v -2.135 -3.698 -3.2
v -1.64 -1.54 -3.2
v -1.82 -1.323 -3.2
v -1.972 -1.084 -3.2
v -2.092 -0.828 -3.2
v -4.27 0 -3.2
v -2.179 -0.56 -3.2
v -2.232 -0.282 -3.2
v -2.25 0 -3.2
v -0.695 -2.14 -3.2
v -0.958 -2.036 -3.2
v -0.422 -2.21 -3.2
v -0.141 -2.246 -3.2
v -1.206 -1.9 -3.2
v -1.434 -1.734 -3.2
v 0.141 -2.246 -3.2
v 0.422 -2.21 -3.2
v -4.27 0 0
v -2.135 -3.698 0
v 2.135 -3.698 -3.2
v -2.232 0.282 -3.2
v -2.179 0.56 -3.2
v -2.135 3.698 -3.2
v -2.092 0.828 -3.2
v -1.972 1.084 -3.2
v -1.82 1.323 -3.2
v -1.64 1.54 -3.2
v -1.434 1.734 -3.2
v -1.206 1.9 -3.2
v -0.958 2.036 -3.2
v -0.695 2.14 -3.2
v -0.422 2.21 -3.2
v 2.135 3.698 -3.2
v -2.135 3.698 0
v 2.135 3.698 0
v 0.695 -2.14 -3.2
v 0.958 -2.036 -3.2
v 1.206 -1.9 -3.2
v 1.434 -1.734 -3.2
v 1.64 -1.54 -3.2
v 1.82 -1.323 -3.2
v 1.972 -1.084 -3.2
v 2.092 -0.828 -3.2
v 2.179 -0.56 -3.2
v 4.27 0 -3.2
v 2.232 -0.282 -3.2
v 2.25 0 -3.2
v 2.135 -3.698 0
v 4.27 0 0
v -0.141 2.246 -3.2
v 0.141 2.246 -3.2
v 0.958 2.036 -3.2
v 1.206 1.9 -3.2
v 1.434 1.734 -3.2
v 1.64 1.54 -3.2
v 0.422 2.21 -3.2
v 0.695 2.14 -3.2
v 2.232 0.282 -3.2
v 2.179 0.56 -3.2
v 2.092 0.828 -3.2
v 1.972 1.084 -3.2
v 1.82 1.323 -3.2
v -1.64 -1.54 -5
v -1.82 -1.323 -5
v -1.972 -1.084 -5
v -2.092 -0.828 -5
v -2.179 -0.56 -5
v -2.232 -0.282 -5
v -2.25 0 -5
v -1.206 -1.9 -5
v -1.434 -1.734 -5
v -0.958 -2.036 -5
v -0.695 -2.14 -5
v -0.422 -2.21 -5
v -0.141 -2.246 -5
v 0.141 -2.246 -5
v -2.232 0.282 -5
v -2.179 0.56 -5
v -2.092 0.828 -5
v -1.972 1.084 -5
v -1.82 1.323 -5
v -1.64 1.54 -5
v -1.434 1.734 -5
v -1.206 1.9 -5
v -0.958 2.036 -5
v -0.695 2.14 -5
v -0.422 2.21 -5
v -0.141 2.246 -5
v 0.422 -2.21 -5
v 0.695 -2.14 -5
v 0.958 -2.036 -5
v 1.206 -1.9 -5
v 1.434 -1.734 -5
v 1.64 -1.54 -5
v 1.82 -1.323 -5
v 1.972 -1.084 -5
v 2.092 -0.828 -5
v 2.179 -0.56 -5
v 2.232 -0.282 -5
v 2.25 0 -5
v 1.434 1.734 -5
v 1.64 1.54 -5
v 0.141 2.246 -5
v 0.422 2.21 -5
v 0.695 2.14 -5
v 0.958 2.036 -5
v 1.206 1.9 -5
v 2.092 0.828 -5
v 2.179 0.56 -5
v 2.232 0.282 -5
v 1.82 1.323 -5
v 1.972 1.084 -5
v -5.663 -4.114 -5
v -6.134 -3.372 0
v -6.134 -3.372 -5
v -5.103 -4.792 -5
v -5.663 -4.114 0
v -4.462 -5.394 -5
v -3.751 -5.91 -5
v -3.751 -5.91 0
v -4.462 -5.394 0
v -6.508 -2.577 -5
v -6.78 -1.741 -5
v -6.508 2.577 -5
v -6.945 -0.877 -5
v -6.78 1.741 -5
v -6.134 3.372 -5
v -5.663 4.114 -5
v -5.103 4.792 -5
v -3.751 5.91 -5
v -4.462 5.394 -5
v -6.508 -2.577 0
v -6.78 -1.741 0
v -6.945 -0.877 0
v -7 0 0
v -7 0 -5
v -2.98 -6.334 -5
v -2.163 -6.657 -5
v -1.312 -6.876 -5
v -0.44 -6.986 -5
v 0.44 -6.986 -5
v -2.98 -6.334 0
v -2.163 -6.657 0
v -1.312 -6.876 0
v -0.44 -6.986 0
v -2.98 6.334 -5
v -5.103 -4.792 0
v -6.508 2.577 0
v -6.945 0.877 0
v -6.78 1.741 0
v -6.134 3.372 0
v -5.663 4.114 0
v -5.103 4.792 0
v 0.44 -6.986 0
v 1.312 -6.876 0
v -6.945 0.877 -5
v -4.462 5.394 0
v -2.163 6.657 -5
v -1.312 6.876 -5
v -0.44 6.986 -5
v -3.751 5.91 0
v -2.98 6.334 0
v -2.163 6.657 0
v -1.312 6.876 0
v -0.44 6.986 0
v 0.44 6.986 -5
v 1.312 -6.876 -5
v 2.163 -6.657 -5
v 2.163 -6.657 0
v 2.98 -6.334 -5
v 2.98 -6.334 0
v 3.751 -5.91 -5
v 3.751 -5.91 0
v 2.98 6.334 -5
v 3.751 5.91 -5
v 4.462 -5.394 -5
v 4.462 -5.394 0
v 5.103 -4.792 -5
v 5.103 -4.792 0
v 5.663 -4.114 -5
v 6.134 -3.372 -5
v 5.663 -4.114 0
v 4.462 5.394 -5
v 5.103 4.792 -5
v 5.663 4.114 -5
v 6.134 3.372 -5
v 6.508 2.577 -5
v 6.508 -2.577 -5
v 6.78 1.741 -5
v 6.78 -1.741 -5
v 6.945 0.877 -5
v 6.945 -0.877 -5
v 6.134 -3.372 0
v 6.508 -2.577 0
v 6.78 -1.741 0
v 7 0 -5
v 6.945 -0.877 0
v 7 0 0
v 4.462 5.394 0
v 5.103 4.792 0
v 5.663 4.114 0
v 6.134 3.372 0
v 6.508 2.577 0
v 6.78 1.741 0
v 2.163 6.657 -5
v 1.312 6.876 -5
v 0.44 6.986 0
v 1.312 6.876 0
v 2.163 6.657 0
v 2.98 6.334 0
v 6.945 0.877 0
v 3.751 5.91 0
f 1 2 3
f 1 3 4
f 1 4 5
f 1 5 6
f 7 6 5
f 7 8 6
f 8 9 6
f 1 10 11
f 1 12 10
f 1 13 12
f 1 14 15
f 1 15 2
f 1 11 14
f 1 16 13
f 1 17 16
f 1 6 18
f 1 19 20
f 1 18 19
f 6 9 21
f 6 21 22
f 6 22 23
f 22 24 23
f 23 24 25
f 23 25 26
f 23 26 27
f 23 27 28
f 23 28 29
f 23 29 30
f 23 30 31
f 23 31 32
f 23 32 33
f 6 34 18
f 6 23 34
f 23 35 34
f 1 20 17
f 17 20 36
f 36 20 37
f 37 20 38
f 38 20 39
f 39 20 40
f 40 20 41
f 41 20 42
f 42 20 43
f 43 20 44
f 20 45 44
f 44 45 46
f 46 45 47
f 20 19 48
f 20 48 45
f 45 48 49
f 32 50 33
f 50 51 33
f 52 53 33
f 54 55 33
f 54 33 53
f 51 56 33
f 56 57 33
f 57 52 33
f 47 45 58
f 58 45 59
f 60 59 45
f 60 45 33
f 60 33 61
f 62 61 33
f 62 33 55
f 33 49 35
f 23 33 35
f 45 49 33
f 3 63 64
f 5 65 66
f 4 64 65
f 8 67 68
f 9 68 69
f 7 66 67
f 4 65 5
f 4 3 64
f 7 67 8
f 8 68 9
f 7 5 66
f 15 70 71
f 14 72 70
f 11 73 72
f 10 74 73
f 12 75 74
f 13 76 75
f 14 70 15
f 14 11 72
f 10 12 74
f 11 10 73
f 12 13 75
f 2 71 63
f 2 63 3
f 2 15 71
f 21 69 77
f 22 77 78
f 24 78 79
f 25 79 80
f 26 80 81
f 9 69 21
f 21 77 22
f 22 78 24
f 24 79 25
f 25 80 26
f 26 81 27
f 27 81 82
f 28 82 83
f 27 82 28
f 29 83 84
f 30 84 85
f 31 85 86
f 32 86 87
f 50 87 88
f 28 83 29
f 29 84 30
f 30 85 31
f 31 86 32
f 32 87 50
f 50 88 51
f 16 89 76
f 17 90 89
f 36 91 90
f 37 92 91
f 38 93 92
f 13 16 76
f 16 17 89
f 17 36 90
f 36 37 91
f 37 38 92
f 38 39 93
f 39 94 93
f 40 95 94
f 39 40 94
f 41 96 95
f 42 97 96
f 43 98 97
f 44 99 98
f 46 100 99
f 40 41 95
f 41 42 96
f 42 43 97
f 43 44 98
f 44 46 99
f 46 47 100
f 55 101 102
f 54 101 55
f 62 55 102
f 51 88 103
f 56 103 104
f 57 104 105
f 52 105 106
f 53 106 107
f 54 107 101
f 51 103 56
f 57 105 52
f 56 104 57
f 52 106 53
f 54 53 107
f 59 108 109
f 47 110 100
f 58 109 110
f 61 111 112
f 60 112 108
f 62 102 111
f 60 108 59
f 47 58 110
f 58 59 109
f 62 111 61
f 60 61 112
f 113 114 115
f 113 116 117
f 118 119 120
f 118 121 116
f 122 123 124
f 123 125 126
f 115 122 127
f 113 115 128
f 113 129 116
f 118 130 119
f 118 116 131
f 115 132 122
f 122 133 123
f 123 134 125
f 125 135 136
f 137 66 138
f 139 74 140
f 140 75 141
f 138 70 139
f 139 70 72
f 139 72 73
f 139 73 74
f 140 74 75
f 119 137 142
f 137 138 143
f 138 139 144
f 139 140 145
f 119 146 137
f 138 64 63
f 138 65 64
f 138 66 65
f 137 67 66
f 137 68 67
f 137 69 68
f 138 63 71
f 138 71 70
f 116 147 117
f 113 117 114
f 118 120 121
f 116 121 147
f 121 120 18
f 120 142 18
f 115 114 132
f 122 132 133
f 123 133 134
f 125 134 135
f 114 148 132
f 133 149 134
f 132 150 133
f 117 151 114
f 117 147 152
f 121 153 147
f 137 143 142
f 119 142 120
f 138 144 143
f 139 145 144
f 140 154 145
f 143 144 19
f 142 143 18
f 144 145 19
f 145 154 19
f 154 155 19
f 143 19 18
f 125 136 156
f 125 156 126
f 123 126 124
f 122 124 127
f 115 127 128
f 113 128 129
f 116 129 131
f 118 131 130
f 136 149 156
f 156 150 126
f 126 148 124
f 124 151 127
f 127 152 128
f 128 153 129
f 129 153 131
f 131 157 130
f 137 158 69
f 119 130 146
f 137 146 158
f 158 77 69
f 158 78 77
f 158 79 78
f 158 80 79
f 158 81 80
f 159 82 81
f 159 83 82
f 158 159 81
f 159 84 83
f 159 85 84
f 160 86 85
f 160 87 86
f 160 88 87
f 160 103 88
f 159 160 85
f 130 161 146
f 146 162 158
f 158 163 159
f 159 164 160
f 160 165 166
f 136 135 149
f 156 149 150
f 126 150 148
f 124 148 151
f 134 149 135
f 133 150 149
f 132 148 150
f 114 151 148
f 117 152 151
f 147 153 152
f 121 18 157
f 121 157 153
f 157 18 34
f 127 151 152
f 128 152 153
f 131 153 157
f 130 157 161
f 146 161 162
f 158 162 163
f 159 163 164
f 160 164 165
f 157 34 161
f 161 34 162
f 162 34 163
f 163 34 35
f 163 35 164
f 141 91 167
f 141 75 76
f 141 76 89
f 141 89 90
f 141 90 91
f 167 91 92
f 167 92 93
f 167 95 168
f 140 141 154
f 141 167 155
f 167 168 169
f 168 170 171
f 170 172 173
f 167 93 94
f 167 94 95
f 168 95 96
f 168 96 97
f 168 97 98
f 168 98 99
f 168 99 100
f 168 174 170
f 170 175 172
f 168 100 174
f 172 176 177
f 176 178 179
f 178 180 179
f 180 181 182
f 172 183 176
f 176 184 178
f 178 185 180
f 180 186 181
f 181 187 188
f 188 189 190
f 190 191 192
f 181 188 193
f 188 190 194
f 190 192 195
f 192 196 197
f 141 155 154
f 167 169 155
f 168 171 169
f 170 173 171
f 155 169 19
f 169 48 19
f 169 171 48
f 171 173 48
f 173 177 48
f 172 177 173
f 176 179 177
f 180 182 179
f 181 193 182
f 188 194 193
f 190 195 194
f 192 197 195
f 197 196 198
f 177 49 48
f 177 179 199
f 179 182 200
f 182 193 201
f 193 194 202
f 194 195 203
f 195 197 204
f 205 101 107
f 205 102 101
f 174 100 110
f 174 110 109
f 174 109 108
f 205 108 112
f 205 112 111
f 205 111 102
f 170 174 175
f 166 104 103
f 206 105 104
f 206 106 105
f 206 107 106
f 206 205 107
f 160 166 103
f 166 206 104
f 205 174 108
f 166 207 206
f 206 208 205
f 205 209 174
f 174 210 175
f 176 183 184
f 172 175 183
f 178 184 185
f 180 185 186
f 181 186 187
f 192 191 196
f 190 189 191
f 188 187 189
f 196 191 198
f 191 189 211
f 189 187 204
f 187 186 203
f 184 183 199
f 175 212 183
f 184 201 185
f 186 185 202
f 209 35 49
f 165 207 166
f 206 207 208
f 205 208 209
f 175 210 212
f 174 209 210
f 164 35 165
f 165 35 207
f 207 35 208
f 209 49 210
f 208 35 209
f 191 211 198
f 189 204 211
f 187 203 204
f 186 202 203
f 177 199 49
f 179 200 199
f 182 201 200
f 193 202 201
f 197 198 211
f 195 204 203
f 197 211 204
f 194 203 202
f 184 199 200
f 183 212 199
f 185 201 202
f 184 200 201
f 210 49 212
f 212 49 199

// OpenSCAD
$fn = 50;

difference() {
	union() {
		translate(v = [0, 0, -5.0]) {
			cylinder(h = 5.0, r = 7.0);
		}
	}
	union() {
		translate(v = [0, 0, 0]) {
			rotate(a = [0, 0, 0]) {
				difference() {
					union() {
						translate(v = [0, 0, -3.2]) {
							linear_extrude(height = 3.2) {
								polygon(points = [[4.2698, 0.0], [2.1349000000000005, 3.697755269078796], [-2.134899999999999, 3.6977552690787965], [-4.2698, 5.228996902999369e-16], [-2.134900000000002, -3.6977552690787956], [2.1348999999999974, -3.697755269078798]]);
							}
						}
					}
					union();
				}
			}
		}
		#translate(v = [0, 0, -100.0]) {
			cylinder(h = 200, r = 2.25);
		}
	}
}
